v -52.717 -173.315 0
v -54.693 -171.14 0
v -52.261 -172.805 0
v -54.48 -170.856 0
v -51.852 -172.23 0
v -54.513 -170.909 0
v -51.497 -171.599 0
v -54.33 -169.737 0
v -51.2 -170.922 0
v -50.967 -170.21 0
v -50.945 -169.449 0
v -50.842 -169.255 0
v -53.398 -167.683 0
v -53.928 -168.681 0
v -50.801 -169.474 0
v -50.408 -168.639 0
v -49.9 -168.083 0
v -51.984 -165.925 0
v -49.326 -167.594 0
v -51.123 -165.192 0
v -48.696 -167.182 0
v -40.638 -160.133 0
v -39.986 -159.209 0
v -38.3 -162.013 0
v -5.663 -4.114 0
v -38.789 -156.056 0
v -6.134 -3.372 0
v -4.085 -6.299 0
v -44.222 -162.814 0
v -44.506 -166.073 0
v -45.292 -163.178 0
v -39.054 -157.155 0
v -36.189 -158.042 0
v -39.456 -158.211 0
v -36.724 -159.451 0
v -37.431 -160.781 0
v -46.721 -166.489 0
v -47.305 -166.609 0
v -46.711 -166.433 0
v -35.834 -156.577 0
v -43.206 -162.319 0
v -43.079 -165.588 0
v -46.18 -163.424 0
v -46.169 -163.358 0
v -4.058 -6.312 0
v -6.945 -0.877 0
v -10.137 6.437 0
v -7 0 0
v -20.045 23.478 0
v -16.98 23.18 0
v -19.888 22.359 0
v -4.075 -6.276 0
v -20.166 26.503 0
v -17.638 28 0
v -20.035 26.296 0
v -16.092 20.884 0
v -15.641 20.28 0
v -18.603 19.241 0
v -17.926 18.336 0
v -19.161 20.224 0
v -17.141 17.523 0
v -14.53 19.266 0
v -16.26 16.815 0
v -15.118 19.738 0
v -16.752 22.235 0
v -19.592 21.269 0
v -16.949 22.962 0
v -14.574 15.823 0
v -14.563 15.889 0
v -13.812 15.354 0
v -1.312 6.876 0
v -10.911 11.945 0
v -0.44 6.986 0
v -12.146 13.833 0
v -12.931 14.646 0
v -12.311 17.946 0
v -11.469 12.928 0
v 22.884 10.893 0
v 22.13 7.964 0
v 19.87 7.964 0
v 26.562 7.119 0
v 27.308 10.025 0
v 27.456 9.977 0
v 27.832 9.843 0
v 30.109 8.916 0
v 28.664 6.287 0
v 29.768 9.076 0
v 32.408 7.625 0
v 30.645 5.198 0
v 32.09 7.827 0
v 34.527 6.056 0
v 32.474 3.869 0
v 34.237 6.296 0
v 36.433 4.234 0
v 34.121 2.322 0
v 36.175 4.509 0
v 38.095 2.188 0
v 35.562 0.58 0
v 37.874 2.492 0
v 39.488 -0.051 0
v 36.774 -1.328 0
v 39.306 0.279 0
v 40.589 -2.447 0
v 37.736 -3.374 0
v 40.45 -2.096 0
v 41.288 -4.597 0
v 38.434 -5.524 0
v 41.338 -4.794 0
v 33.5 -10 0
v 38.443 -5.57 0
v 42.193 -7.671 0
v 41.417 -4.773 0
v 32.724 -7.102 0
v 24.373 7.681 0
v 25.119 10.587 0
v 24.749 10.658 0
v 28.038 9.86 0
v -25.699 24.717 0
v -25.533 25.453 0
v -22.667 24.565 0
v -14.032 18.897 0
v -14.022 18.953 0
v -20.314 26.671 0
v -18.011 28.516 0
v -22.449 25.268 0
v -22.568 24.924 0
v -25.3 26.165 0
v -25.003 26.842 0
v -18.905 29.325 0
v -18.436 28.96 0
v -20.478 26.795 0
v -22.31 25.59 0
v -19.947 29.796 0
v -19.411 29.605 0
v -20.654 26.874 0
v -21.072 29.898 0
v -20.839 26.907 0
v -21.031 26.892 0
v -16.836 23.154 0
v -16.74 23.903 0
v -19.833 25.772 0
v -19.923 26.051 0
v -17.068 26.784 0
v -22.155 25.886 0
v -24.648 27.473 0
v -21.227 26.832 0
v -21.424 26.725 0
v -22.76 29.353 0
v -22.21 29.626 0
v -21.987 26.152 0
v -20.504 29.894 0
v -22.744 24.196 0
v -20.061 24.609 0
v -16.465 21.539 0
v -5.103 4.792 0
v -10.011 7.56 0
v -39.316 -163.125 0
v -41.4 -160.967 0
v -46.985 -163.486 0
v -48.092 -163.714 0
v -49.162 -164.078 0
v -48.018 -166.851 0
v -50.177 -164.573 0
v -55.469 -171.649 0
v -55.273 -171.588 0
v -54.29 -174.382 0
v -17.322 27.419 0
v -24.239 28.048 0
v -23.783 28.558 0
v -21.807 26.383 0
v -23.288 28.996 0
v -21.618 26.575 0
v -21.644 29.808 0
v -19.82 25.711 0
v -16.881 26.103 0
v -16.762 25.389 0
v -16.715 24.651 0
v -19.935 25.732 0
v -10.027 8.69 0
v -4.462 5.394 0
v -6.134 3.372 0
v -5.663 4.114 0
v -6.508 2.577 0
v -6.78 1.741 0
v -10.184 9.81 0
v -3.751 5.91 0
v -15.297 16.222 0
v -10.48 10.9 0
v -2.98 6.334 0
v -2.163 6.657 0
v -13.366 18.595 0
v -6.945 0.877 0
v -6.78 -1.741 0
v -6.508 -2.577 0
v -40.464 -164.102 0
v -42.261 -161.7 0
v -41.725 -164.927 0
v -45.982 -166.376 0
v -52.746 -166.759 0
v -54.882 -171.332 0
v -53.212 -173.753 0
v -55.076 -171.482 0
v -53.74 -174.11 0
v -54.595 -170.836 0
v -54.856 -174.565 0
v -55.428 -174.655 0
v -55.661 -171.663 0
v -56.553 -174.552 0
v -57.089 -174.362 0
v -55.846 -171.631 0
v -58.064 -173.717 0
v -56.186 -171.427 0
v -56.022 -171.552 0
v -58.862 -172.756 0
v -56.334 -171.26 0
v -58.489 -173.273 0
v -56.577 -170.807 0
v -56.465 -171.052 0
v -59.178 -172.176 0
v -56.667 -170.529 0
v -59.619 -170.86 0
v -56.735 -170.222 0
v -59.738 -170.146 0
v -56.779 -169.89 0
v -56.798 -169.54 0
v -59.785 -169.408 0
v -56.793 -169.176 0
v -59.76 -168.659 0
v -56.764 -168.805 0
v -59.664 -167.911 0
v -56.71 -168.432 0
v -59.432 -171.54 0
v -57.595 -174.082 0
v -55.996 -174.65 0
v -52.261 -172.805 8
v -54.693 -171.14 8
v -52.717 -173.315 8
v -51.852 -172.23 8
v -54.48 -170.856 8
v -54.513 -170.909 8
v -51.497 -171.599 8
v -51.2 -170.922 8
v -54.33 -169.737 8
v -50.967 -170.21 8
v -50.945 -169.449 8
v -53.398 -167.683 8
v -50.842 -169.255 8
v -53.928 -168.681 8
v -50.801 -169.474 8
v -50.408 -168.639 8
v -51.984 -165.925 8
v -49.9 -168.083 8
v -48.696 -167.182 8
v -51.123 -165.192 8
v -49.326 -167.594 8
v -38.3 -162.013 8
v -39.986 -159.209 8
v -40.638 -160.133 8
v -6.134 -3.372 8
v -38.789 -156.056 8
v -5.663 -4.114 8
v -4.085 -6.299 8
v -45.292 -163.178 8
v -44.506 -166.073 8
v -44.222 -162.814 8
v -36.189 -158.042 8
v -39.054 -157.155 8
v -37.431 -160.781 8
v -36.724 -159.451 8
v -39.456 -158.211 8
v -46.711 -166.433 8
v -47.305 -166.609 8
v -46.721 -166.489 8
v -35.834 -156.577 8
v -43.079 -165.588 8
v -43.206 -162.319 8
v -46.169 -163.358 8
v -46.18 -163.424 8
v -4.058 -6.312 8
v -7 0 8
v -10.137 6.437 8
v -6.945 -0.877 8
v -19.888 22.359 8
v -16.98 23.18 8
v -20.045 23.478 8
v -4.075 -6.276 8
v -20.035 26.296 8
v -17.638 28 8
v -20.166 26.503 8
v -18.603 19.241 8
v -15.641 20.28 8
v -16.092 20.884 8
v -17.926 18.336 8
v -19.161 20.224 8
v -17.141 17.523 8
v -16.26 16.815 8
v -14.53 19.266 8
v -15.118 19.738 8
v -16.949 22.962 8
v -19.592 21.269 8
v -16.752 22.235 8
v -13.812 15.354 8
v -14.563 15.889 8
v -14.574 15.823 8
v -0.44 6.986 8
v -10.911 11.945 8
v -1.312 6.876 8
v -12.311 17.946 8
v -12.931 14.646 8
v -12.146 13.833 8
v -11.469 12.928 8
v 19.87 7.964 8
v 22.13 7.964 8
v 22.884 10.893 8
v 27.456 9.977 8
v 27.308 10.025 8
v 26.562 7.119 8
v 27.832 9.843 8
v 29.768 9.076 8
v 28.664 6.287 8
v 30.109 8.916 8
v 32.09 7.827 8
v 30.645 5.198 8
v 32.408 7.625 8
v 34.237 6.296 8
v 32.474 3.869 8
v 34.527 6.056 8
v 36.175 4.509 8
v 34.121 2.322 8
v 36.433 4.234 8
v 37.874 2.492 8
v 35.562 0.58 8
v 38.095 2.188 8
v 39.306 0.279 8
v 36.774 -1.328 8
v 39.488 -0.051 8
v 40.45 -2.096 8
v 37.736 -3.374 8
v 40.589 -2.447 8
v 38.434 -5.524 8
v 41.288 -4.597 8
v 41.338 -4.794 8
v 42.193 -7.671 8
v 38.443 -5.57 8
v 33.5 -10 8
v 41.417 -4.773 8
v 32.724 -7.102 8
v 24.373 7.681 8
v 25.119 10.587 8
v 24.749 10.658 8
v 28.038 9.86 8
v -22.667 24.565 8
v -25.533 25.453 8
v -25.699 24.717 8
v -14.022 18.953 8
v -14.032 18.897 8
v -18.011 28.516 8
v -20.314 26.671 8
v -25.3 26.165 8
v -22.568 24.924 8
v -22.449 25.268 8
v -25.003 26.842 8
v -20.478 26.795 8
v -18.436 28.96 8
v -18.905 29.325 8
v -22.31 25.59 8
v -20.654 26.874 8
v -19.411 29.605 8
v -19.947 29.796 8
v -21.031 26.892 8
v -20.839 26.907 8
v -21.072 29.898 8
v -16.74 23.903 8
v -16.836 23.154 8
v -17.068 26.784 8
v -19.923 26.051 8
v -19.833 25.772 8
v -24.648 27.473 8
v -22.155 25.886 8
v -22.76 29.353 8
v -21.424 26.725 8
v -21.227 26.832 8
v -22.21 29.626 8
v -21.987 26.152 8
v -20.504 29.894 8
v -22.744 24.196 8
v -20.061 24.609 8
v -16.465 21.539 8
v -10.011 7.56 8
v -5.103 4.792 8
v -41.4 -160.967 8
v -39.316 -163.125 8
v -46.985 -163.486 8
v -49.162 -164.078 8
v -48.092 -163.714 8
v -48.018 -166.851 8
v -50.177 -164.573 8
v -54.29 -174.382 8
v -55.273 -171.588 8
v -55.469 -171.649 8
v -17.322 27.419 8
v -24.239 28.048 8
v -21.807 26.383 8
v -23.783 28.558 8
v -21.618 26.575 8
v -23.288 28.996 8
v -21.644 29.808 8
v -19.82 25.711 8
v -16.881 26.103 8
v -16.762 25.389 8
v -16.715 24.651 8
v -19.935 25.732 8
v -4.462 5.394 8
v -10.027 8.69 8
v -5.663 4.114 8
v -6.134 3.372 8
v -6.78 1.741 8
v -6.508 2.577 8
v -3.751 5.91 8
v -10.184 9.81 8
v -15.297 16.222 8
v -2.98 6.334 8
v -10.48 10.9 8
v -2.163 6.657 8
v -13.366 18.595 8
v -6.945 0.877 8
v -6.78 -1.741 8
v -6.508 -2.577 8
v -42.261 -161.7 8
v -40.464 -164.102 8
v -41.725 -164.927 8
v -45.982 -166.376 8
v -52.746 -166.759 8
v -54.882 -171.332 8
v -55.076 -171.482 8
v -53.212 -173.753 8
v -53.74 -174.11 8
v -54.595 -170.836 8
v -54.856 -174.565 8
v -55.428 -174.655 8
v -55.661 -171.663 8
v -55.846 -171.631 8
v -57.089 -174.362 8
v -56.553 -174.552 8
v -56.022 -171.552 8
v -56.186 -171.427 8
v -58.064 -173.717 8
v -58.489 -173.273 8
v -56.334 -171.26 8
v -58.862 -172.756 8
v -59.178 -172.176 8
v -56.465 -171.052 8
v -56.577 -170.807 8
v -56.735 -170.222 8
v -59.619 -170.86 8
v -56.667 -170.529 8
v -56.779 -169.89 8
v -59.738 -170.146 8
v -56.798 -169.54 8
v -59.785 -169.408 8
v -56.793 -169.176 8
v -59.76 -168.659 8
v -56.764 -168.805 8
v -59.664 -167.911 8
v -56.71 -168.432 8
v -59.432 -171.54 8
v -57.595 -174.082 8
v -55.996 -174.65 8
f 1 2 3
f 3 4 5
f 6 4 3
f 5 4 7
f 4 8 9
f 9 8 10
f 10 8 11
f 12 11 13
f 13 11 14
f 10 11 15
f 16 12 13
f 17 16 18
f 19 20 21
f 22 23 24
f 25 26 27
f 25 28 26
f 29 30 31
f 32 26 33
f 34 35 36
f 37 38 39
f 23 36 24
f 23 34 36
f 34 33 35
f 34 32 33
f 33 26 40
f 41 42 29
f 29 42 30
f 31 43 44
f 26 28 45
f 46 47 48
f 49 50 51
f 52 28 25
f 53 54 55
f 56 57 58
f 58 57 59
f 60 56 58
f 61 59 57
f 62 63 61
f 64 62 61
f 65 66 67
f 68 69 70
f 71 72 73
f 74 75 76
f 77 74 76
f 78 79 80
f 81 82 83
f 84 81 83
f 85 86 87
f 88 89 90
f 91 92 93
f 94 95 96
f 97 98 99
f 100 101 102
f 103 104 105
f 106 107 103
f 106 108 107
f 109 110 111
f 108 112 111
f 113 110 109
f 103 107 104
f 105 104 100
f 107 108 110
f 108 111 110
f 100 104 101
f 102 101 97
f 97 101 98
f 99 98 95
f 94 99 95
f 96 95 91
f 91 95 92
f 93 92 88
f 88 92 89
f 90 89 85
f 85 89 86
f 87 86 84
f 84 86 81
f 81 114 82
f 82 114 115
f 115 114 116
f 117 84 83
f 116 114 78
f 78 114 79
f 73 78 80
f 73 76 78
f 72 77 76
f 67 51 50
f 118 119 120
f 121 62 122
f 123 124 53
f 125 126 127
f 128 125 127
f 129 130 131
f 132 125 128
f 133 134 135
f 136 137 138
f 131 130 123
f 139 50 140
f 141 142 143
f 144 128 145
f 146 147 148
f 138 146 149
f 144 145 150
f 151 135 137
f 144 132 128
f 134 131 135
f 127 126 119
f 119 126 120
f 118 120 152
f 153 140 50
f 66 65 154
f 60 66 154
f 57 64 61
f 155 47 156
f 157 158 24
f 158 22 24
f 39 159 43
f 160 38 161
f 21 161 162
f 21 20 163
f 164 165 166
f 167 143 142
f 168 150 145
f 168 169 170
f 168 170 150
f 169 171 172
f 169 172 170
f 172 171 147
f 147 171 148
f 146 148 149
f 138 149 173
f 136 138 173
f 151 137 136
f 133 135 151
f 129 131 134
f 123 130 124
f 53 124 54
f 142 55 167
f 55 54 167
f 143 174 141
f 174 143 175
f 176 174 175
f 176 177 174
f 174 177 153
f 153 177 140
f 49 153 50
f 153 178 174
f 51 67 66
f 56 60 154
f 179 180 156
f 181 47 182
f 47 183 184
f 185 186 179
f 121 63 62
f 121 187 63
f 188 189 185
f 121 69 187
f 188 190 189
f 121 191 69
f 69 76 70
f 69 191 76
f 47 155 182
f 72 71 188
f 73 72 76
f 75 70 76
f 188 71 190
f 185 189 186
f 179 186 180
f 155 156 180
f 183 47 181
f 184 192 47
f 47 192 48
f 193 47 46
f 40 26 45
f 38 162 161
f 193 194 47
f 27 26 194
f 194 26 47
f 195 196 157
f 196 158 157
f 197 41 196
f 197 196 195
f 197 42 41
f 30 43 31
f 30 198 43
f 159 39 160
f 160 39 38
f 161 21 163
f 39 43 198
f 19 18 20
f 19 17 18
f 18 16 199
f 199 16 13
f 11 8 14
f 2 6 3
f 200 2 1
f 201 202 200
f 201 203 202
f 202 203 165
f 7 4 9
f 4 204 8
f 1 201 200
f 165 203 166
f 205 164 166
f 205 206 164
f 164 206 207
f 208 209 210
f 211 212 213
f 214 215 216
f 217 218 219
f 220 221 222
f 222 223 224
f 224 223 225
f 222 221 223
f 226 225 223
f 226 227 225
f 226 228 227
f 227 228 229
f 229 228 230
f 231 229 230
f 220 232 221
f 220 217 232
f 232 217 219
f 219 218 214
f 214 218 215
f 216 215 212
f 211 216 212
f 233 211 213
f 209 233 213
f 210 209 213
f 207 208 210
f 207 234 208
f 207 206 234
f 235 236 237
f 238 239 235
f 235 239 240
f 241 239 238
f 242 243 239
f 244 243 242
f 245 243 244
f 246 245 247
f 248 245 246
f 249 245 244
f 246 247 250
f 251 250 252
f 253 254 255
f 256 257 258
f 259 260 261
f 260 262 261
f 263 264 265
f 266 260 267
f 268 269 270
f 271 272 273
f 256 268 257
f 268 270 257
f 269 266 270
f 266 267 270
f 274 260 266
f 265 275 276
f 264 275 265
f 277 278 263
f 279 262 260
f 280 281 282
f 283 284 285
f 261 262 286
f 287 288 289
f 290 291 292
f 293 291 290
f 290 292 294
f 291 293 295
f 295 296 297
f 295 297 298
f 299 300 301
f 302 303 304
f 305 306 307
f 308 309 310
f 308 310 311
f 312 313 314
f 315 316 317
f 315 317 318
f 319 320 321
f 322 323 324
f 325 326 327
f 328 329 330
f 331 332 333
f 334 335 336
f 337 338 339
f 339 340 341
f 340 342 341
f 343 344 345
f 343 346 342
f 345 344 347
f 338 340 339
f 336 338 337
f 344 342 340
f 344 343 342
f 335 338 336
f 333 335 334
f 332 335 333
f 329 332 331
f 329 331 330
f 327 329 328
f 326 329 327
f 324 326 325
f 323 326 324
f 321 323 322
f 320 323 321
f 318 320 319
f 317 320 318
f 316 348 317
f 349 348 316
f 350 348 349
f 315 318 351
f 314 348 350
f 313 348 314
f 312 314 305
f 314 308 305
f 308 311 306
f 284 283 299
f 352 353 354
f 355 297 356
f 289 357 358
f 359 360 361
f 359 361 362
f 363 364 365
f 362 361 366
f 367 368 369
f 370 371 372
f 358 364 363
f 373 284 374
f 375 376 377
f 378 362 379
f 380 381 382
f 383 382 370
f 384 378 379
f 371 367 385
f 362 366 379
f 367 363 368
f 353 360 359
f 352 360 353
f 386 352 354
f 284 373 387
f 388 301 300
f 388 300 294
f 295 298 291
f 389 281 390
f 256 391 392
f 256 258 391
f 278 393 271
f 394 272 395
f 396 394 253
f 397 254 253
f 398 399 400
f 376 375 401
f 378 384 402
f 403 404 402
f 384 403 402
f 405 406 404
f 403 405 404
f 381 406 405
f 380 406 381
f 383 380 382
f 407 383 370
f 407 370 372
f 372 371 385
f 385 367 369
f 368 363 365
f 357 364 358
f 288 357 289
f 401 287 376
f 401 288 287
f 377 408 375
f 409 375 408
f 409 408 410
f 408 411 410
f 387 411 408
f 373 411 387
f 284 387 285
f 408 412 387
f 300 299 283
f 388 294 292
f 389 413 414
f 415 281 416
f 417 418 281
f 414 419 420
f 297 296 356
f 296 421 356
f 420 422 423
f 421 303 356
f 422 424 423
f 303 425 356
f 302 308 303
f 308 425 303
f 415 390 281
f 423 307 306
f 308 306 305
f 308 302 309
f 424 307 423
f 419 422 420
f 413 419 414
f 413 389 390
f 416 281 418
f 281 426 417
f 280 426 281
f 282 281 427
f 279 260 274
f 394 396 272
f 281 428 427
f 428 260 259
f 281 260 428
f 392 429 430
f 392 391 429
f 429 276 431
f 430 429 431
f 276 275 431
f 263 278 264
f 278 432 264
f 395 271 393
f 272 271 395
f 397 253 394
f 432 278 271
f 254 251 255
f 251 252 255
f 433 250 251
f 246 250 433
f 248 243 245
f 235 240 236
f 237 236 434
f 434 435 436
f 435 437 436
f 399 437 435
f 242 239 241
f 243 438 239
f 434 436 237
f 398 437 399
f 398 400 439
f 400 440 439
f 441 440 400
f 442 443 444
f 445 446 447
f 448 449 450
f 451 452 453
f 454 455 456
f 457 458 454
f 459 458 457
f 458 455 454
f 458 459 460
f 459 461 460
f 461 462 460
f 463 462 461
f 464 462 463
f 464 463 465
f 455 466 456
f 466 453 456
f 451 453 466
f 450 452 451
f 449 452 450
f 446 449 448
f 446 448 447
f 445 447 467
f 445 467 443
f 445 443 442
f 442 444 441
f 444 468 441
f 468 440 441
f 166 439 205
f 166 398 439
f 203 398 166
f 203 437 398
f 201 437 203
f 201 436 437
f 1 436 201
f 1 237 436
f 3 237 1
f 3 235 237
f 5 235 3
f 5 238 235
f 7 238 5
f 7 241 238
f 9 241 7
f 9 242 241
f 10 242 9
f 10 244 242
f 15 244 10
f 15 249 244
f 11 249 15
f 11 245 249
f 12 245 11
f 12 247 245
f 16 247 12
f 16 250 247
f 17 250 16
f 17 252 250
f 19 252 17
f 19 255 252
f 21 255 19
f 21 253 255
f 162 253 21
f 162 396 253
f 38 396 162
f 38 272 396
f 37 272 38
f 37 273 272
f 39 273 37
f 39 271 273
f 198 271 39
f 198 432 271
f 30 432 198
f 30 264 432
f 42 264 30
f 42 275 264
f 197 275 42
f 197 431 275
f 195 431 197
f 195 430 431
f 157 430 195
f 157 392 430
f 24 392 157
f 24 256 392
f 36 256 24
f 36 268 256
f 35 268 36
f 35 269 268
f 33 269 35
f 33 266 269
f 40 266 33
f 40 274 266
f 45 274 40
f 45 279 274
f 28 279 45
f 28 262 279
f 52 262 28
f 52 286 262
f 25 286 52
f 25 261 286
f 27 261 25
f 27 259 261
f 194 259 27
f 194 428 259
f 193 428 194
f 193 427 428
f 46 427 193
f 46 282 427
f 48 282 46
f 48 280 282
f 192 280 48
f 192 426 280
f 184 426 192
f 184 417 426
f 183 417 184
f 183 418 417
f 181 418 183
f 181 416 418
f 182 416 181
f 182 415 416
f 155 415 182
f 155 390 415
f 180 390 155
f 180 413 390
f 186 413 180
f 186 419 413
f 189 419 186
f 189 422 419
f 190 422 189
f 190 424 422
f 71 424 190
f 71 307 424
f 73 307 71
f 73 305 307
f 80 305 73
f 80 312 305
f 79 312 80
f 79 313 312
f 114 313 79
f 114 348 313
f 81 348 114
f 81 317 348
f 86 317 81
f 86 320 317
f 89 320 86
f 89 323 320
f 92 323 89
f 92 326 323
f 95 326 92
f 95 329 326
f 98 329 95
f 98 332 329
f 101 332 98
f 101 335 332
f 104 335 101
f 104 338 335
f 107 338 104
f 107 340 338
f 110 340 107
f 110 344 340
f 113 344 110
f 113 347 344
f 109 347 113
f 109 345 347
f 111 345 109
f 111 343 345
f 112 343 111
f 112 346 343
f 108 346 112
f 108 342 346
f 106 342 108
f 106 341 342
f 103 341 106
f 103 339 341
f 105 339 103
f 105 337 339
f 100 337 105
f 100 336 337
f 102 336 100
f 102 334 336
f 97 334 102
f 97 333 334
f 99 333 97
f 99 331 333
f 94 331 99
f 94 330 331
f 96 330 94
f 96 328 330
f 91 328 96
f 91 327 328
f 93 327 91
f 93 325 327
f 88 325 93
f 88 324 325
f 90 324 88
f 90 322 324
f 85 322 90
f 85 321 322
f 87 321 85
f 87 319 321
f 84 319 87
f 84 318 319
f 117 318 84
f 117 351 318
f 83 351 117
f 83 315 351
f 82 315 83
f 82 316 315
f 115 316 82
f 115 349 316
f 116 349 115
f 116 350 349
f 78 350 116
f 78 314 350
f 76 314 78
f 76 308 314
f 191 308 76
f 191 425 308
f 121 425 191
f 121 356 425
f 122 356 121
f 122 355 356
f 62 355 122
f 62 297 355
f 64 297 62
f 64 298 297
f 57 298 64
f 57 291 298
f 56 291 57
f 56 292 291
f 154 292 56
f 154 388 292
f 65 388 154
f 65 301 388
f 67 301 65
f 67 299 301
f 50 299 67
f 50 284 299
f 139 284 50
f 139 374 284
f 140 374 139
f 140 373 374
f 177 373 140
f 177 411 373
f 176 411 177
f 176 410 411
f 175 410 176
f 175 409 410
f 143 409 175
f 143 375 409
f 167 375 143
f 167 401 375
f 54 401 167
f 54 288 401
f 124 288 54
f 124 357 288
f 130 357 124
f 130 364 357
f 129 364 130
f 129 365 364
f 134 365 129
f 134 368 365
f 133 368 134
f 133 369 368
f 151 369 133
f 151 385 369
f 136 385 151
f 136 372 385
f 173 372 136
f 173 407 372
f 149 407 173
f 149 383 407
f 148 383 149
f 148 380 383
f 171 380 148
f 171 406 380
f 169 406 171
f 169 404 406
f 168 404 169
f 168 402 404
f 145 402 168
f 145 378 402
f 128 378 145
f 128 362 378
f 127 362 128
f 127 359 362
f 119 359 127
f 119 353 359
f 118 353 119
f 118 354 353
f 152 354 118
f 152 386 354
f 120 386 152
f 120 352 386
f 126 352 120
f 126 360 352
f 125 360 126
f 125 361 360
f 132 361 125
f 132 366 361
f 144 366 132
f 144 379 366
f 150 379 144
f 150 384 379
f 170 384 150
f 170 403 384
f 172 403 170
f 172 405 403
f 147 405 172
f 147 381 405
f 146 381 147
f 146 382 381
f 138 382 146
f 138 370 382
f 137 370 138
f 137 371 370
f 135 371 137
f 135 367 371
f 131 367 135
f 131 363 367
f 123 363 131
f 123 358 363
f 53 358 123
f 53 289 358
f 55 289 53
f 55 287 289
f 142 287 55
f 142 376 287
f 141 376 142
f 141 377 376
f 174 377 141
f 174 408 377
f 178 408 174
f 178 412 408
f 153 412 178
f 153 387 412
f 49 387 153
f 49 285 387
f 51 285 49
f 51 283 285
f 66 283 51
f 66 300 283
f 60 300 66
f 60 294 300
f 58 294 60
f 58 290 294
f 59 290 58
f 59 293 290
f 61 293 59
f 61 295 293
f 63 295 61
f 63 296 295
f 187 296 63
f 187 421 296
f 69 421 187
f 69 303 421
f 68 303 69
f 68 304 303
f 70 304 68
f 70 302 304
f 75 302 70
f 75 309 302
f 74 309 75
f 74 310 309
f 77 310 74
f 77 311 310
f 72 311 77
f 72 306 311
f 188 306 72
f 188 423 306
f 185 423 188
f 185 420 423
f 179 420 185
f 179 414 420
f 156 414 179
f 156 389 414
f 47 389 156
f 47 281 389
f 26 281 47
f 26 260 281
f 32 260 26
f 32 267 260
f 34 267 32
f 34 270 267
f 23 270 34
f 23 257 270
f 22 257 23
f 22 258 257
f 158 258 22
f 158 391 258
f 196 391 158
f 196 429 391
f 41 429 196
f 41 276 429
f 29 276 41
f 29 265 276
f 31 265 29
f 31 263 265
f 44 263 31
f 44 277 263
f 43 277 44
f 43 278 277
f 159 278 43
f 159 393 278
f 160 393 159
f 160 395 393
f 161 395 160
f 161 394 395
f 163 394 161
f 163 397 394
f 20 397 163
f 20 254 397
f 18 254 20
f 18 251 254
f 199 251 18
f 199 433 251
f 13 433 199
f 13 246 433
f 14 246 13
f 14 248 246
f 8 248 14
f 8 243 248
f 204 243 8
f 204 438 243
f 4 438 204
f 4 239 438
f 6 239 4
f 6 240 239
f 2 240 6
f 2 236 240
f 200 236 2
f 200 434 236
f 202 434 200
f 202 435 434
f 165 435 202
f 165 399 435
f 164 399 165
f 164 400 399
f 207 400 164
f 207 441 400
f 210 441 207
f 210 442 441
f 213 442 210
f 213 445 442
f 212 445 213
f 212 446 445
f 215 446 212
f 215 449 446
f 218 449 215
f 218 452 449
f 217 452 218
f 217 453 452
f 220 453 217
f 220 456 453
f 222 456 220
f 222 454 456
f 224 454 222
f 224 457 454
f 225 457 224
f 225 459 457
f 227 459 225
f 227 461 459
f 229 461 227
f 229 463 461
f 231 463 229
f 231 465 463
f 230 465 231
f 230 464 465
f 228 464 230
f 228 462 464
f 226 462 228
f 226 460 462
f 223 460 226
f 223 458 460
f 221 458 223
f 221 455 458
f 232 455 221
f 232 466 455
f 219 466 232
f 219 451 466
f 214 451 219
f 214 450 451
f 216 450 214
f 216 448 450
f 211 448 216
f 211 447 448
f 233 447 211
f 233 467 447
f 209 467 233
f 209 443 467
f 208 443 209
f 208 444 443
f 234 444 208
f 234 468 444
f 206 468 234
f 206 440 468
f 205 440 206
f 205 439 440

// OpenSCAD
$fn=50;

module grips_hull() {
    hull() {
        circle(d=14);
        translate([21, -10, 0]) circle(d=36);
    }
}

module tray_grip_quart_circle(outer_d) {
    intersection() {
        difference() {
            circle(d=outer_d);
            circle(d=outer_d-6);
        }
        square([outer_d/2, outer_d/2]);
    }
}

module tray_grip() {
    //bottom curve
    difference() {
        tray_grip_quart_circle(24);
        translate([-7, 5, 0]) square([10, 10]);
    }
    //top curve
    translate([5, 17.3, 0]) rotate([0, 0, 180]) {
        difference() {
            tray_grip_quart_circle(18);
            translate([-7,0, 0]) square([9, 9]);
        }
        //grip at top
        translate([10, 2, 0]) {
            difference() {
                resize([9, 12, 0]) circle(d=6);
                translate([-5, 0, 0]) square([10, 6]);
                translate([0, 0, 0]) resize([3, 6, 0]) circle(r=1);
            }
        }
    }
}

module stokke_grips() {
    difference() {
        difference() {
            offset(r=3) grips_hull();
            grips_hull();
        }
        polygon([
            [-3,-4], [50, -7],
            [50, -40], [-20, -40]
        ]);
    }
    translate([33.5, -10, 0]) rotate([0, 0, 15]) square([9, 3]);
}

module whole() {
    linear_extrude(8) {
        stokke_grips();
        //tray bar
        translate([-19, 8]) rotate([0,0,-10]) {
            //square([3, 20]);
            tray_grip();
            //thick back
            #translate([7, 0, 0]) polygon([
            [5, 1], [-4, 11], [39, 10]
            ]);
            //thick under tray
            translate([12, 0, 0]) rotate([0, 0, 180]) polygon([
            [3, 0], [0, 0],
            [0, 10], [-5.2, 11.5],
            [0, 165], [3, 165]
            ]);
            //square([3, 165]);
            translate([0, -165, 0]) rotate([180, 0, 0]) tray_grip();
        }
    }
}

whole();
